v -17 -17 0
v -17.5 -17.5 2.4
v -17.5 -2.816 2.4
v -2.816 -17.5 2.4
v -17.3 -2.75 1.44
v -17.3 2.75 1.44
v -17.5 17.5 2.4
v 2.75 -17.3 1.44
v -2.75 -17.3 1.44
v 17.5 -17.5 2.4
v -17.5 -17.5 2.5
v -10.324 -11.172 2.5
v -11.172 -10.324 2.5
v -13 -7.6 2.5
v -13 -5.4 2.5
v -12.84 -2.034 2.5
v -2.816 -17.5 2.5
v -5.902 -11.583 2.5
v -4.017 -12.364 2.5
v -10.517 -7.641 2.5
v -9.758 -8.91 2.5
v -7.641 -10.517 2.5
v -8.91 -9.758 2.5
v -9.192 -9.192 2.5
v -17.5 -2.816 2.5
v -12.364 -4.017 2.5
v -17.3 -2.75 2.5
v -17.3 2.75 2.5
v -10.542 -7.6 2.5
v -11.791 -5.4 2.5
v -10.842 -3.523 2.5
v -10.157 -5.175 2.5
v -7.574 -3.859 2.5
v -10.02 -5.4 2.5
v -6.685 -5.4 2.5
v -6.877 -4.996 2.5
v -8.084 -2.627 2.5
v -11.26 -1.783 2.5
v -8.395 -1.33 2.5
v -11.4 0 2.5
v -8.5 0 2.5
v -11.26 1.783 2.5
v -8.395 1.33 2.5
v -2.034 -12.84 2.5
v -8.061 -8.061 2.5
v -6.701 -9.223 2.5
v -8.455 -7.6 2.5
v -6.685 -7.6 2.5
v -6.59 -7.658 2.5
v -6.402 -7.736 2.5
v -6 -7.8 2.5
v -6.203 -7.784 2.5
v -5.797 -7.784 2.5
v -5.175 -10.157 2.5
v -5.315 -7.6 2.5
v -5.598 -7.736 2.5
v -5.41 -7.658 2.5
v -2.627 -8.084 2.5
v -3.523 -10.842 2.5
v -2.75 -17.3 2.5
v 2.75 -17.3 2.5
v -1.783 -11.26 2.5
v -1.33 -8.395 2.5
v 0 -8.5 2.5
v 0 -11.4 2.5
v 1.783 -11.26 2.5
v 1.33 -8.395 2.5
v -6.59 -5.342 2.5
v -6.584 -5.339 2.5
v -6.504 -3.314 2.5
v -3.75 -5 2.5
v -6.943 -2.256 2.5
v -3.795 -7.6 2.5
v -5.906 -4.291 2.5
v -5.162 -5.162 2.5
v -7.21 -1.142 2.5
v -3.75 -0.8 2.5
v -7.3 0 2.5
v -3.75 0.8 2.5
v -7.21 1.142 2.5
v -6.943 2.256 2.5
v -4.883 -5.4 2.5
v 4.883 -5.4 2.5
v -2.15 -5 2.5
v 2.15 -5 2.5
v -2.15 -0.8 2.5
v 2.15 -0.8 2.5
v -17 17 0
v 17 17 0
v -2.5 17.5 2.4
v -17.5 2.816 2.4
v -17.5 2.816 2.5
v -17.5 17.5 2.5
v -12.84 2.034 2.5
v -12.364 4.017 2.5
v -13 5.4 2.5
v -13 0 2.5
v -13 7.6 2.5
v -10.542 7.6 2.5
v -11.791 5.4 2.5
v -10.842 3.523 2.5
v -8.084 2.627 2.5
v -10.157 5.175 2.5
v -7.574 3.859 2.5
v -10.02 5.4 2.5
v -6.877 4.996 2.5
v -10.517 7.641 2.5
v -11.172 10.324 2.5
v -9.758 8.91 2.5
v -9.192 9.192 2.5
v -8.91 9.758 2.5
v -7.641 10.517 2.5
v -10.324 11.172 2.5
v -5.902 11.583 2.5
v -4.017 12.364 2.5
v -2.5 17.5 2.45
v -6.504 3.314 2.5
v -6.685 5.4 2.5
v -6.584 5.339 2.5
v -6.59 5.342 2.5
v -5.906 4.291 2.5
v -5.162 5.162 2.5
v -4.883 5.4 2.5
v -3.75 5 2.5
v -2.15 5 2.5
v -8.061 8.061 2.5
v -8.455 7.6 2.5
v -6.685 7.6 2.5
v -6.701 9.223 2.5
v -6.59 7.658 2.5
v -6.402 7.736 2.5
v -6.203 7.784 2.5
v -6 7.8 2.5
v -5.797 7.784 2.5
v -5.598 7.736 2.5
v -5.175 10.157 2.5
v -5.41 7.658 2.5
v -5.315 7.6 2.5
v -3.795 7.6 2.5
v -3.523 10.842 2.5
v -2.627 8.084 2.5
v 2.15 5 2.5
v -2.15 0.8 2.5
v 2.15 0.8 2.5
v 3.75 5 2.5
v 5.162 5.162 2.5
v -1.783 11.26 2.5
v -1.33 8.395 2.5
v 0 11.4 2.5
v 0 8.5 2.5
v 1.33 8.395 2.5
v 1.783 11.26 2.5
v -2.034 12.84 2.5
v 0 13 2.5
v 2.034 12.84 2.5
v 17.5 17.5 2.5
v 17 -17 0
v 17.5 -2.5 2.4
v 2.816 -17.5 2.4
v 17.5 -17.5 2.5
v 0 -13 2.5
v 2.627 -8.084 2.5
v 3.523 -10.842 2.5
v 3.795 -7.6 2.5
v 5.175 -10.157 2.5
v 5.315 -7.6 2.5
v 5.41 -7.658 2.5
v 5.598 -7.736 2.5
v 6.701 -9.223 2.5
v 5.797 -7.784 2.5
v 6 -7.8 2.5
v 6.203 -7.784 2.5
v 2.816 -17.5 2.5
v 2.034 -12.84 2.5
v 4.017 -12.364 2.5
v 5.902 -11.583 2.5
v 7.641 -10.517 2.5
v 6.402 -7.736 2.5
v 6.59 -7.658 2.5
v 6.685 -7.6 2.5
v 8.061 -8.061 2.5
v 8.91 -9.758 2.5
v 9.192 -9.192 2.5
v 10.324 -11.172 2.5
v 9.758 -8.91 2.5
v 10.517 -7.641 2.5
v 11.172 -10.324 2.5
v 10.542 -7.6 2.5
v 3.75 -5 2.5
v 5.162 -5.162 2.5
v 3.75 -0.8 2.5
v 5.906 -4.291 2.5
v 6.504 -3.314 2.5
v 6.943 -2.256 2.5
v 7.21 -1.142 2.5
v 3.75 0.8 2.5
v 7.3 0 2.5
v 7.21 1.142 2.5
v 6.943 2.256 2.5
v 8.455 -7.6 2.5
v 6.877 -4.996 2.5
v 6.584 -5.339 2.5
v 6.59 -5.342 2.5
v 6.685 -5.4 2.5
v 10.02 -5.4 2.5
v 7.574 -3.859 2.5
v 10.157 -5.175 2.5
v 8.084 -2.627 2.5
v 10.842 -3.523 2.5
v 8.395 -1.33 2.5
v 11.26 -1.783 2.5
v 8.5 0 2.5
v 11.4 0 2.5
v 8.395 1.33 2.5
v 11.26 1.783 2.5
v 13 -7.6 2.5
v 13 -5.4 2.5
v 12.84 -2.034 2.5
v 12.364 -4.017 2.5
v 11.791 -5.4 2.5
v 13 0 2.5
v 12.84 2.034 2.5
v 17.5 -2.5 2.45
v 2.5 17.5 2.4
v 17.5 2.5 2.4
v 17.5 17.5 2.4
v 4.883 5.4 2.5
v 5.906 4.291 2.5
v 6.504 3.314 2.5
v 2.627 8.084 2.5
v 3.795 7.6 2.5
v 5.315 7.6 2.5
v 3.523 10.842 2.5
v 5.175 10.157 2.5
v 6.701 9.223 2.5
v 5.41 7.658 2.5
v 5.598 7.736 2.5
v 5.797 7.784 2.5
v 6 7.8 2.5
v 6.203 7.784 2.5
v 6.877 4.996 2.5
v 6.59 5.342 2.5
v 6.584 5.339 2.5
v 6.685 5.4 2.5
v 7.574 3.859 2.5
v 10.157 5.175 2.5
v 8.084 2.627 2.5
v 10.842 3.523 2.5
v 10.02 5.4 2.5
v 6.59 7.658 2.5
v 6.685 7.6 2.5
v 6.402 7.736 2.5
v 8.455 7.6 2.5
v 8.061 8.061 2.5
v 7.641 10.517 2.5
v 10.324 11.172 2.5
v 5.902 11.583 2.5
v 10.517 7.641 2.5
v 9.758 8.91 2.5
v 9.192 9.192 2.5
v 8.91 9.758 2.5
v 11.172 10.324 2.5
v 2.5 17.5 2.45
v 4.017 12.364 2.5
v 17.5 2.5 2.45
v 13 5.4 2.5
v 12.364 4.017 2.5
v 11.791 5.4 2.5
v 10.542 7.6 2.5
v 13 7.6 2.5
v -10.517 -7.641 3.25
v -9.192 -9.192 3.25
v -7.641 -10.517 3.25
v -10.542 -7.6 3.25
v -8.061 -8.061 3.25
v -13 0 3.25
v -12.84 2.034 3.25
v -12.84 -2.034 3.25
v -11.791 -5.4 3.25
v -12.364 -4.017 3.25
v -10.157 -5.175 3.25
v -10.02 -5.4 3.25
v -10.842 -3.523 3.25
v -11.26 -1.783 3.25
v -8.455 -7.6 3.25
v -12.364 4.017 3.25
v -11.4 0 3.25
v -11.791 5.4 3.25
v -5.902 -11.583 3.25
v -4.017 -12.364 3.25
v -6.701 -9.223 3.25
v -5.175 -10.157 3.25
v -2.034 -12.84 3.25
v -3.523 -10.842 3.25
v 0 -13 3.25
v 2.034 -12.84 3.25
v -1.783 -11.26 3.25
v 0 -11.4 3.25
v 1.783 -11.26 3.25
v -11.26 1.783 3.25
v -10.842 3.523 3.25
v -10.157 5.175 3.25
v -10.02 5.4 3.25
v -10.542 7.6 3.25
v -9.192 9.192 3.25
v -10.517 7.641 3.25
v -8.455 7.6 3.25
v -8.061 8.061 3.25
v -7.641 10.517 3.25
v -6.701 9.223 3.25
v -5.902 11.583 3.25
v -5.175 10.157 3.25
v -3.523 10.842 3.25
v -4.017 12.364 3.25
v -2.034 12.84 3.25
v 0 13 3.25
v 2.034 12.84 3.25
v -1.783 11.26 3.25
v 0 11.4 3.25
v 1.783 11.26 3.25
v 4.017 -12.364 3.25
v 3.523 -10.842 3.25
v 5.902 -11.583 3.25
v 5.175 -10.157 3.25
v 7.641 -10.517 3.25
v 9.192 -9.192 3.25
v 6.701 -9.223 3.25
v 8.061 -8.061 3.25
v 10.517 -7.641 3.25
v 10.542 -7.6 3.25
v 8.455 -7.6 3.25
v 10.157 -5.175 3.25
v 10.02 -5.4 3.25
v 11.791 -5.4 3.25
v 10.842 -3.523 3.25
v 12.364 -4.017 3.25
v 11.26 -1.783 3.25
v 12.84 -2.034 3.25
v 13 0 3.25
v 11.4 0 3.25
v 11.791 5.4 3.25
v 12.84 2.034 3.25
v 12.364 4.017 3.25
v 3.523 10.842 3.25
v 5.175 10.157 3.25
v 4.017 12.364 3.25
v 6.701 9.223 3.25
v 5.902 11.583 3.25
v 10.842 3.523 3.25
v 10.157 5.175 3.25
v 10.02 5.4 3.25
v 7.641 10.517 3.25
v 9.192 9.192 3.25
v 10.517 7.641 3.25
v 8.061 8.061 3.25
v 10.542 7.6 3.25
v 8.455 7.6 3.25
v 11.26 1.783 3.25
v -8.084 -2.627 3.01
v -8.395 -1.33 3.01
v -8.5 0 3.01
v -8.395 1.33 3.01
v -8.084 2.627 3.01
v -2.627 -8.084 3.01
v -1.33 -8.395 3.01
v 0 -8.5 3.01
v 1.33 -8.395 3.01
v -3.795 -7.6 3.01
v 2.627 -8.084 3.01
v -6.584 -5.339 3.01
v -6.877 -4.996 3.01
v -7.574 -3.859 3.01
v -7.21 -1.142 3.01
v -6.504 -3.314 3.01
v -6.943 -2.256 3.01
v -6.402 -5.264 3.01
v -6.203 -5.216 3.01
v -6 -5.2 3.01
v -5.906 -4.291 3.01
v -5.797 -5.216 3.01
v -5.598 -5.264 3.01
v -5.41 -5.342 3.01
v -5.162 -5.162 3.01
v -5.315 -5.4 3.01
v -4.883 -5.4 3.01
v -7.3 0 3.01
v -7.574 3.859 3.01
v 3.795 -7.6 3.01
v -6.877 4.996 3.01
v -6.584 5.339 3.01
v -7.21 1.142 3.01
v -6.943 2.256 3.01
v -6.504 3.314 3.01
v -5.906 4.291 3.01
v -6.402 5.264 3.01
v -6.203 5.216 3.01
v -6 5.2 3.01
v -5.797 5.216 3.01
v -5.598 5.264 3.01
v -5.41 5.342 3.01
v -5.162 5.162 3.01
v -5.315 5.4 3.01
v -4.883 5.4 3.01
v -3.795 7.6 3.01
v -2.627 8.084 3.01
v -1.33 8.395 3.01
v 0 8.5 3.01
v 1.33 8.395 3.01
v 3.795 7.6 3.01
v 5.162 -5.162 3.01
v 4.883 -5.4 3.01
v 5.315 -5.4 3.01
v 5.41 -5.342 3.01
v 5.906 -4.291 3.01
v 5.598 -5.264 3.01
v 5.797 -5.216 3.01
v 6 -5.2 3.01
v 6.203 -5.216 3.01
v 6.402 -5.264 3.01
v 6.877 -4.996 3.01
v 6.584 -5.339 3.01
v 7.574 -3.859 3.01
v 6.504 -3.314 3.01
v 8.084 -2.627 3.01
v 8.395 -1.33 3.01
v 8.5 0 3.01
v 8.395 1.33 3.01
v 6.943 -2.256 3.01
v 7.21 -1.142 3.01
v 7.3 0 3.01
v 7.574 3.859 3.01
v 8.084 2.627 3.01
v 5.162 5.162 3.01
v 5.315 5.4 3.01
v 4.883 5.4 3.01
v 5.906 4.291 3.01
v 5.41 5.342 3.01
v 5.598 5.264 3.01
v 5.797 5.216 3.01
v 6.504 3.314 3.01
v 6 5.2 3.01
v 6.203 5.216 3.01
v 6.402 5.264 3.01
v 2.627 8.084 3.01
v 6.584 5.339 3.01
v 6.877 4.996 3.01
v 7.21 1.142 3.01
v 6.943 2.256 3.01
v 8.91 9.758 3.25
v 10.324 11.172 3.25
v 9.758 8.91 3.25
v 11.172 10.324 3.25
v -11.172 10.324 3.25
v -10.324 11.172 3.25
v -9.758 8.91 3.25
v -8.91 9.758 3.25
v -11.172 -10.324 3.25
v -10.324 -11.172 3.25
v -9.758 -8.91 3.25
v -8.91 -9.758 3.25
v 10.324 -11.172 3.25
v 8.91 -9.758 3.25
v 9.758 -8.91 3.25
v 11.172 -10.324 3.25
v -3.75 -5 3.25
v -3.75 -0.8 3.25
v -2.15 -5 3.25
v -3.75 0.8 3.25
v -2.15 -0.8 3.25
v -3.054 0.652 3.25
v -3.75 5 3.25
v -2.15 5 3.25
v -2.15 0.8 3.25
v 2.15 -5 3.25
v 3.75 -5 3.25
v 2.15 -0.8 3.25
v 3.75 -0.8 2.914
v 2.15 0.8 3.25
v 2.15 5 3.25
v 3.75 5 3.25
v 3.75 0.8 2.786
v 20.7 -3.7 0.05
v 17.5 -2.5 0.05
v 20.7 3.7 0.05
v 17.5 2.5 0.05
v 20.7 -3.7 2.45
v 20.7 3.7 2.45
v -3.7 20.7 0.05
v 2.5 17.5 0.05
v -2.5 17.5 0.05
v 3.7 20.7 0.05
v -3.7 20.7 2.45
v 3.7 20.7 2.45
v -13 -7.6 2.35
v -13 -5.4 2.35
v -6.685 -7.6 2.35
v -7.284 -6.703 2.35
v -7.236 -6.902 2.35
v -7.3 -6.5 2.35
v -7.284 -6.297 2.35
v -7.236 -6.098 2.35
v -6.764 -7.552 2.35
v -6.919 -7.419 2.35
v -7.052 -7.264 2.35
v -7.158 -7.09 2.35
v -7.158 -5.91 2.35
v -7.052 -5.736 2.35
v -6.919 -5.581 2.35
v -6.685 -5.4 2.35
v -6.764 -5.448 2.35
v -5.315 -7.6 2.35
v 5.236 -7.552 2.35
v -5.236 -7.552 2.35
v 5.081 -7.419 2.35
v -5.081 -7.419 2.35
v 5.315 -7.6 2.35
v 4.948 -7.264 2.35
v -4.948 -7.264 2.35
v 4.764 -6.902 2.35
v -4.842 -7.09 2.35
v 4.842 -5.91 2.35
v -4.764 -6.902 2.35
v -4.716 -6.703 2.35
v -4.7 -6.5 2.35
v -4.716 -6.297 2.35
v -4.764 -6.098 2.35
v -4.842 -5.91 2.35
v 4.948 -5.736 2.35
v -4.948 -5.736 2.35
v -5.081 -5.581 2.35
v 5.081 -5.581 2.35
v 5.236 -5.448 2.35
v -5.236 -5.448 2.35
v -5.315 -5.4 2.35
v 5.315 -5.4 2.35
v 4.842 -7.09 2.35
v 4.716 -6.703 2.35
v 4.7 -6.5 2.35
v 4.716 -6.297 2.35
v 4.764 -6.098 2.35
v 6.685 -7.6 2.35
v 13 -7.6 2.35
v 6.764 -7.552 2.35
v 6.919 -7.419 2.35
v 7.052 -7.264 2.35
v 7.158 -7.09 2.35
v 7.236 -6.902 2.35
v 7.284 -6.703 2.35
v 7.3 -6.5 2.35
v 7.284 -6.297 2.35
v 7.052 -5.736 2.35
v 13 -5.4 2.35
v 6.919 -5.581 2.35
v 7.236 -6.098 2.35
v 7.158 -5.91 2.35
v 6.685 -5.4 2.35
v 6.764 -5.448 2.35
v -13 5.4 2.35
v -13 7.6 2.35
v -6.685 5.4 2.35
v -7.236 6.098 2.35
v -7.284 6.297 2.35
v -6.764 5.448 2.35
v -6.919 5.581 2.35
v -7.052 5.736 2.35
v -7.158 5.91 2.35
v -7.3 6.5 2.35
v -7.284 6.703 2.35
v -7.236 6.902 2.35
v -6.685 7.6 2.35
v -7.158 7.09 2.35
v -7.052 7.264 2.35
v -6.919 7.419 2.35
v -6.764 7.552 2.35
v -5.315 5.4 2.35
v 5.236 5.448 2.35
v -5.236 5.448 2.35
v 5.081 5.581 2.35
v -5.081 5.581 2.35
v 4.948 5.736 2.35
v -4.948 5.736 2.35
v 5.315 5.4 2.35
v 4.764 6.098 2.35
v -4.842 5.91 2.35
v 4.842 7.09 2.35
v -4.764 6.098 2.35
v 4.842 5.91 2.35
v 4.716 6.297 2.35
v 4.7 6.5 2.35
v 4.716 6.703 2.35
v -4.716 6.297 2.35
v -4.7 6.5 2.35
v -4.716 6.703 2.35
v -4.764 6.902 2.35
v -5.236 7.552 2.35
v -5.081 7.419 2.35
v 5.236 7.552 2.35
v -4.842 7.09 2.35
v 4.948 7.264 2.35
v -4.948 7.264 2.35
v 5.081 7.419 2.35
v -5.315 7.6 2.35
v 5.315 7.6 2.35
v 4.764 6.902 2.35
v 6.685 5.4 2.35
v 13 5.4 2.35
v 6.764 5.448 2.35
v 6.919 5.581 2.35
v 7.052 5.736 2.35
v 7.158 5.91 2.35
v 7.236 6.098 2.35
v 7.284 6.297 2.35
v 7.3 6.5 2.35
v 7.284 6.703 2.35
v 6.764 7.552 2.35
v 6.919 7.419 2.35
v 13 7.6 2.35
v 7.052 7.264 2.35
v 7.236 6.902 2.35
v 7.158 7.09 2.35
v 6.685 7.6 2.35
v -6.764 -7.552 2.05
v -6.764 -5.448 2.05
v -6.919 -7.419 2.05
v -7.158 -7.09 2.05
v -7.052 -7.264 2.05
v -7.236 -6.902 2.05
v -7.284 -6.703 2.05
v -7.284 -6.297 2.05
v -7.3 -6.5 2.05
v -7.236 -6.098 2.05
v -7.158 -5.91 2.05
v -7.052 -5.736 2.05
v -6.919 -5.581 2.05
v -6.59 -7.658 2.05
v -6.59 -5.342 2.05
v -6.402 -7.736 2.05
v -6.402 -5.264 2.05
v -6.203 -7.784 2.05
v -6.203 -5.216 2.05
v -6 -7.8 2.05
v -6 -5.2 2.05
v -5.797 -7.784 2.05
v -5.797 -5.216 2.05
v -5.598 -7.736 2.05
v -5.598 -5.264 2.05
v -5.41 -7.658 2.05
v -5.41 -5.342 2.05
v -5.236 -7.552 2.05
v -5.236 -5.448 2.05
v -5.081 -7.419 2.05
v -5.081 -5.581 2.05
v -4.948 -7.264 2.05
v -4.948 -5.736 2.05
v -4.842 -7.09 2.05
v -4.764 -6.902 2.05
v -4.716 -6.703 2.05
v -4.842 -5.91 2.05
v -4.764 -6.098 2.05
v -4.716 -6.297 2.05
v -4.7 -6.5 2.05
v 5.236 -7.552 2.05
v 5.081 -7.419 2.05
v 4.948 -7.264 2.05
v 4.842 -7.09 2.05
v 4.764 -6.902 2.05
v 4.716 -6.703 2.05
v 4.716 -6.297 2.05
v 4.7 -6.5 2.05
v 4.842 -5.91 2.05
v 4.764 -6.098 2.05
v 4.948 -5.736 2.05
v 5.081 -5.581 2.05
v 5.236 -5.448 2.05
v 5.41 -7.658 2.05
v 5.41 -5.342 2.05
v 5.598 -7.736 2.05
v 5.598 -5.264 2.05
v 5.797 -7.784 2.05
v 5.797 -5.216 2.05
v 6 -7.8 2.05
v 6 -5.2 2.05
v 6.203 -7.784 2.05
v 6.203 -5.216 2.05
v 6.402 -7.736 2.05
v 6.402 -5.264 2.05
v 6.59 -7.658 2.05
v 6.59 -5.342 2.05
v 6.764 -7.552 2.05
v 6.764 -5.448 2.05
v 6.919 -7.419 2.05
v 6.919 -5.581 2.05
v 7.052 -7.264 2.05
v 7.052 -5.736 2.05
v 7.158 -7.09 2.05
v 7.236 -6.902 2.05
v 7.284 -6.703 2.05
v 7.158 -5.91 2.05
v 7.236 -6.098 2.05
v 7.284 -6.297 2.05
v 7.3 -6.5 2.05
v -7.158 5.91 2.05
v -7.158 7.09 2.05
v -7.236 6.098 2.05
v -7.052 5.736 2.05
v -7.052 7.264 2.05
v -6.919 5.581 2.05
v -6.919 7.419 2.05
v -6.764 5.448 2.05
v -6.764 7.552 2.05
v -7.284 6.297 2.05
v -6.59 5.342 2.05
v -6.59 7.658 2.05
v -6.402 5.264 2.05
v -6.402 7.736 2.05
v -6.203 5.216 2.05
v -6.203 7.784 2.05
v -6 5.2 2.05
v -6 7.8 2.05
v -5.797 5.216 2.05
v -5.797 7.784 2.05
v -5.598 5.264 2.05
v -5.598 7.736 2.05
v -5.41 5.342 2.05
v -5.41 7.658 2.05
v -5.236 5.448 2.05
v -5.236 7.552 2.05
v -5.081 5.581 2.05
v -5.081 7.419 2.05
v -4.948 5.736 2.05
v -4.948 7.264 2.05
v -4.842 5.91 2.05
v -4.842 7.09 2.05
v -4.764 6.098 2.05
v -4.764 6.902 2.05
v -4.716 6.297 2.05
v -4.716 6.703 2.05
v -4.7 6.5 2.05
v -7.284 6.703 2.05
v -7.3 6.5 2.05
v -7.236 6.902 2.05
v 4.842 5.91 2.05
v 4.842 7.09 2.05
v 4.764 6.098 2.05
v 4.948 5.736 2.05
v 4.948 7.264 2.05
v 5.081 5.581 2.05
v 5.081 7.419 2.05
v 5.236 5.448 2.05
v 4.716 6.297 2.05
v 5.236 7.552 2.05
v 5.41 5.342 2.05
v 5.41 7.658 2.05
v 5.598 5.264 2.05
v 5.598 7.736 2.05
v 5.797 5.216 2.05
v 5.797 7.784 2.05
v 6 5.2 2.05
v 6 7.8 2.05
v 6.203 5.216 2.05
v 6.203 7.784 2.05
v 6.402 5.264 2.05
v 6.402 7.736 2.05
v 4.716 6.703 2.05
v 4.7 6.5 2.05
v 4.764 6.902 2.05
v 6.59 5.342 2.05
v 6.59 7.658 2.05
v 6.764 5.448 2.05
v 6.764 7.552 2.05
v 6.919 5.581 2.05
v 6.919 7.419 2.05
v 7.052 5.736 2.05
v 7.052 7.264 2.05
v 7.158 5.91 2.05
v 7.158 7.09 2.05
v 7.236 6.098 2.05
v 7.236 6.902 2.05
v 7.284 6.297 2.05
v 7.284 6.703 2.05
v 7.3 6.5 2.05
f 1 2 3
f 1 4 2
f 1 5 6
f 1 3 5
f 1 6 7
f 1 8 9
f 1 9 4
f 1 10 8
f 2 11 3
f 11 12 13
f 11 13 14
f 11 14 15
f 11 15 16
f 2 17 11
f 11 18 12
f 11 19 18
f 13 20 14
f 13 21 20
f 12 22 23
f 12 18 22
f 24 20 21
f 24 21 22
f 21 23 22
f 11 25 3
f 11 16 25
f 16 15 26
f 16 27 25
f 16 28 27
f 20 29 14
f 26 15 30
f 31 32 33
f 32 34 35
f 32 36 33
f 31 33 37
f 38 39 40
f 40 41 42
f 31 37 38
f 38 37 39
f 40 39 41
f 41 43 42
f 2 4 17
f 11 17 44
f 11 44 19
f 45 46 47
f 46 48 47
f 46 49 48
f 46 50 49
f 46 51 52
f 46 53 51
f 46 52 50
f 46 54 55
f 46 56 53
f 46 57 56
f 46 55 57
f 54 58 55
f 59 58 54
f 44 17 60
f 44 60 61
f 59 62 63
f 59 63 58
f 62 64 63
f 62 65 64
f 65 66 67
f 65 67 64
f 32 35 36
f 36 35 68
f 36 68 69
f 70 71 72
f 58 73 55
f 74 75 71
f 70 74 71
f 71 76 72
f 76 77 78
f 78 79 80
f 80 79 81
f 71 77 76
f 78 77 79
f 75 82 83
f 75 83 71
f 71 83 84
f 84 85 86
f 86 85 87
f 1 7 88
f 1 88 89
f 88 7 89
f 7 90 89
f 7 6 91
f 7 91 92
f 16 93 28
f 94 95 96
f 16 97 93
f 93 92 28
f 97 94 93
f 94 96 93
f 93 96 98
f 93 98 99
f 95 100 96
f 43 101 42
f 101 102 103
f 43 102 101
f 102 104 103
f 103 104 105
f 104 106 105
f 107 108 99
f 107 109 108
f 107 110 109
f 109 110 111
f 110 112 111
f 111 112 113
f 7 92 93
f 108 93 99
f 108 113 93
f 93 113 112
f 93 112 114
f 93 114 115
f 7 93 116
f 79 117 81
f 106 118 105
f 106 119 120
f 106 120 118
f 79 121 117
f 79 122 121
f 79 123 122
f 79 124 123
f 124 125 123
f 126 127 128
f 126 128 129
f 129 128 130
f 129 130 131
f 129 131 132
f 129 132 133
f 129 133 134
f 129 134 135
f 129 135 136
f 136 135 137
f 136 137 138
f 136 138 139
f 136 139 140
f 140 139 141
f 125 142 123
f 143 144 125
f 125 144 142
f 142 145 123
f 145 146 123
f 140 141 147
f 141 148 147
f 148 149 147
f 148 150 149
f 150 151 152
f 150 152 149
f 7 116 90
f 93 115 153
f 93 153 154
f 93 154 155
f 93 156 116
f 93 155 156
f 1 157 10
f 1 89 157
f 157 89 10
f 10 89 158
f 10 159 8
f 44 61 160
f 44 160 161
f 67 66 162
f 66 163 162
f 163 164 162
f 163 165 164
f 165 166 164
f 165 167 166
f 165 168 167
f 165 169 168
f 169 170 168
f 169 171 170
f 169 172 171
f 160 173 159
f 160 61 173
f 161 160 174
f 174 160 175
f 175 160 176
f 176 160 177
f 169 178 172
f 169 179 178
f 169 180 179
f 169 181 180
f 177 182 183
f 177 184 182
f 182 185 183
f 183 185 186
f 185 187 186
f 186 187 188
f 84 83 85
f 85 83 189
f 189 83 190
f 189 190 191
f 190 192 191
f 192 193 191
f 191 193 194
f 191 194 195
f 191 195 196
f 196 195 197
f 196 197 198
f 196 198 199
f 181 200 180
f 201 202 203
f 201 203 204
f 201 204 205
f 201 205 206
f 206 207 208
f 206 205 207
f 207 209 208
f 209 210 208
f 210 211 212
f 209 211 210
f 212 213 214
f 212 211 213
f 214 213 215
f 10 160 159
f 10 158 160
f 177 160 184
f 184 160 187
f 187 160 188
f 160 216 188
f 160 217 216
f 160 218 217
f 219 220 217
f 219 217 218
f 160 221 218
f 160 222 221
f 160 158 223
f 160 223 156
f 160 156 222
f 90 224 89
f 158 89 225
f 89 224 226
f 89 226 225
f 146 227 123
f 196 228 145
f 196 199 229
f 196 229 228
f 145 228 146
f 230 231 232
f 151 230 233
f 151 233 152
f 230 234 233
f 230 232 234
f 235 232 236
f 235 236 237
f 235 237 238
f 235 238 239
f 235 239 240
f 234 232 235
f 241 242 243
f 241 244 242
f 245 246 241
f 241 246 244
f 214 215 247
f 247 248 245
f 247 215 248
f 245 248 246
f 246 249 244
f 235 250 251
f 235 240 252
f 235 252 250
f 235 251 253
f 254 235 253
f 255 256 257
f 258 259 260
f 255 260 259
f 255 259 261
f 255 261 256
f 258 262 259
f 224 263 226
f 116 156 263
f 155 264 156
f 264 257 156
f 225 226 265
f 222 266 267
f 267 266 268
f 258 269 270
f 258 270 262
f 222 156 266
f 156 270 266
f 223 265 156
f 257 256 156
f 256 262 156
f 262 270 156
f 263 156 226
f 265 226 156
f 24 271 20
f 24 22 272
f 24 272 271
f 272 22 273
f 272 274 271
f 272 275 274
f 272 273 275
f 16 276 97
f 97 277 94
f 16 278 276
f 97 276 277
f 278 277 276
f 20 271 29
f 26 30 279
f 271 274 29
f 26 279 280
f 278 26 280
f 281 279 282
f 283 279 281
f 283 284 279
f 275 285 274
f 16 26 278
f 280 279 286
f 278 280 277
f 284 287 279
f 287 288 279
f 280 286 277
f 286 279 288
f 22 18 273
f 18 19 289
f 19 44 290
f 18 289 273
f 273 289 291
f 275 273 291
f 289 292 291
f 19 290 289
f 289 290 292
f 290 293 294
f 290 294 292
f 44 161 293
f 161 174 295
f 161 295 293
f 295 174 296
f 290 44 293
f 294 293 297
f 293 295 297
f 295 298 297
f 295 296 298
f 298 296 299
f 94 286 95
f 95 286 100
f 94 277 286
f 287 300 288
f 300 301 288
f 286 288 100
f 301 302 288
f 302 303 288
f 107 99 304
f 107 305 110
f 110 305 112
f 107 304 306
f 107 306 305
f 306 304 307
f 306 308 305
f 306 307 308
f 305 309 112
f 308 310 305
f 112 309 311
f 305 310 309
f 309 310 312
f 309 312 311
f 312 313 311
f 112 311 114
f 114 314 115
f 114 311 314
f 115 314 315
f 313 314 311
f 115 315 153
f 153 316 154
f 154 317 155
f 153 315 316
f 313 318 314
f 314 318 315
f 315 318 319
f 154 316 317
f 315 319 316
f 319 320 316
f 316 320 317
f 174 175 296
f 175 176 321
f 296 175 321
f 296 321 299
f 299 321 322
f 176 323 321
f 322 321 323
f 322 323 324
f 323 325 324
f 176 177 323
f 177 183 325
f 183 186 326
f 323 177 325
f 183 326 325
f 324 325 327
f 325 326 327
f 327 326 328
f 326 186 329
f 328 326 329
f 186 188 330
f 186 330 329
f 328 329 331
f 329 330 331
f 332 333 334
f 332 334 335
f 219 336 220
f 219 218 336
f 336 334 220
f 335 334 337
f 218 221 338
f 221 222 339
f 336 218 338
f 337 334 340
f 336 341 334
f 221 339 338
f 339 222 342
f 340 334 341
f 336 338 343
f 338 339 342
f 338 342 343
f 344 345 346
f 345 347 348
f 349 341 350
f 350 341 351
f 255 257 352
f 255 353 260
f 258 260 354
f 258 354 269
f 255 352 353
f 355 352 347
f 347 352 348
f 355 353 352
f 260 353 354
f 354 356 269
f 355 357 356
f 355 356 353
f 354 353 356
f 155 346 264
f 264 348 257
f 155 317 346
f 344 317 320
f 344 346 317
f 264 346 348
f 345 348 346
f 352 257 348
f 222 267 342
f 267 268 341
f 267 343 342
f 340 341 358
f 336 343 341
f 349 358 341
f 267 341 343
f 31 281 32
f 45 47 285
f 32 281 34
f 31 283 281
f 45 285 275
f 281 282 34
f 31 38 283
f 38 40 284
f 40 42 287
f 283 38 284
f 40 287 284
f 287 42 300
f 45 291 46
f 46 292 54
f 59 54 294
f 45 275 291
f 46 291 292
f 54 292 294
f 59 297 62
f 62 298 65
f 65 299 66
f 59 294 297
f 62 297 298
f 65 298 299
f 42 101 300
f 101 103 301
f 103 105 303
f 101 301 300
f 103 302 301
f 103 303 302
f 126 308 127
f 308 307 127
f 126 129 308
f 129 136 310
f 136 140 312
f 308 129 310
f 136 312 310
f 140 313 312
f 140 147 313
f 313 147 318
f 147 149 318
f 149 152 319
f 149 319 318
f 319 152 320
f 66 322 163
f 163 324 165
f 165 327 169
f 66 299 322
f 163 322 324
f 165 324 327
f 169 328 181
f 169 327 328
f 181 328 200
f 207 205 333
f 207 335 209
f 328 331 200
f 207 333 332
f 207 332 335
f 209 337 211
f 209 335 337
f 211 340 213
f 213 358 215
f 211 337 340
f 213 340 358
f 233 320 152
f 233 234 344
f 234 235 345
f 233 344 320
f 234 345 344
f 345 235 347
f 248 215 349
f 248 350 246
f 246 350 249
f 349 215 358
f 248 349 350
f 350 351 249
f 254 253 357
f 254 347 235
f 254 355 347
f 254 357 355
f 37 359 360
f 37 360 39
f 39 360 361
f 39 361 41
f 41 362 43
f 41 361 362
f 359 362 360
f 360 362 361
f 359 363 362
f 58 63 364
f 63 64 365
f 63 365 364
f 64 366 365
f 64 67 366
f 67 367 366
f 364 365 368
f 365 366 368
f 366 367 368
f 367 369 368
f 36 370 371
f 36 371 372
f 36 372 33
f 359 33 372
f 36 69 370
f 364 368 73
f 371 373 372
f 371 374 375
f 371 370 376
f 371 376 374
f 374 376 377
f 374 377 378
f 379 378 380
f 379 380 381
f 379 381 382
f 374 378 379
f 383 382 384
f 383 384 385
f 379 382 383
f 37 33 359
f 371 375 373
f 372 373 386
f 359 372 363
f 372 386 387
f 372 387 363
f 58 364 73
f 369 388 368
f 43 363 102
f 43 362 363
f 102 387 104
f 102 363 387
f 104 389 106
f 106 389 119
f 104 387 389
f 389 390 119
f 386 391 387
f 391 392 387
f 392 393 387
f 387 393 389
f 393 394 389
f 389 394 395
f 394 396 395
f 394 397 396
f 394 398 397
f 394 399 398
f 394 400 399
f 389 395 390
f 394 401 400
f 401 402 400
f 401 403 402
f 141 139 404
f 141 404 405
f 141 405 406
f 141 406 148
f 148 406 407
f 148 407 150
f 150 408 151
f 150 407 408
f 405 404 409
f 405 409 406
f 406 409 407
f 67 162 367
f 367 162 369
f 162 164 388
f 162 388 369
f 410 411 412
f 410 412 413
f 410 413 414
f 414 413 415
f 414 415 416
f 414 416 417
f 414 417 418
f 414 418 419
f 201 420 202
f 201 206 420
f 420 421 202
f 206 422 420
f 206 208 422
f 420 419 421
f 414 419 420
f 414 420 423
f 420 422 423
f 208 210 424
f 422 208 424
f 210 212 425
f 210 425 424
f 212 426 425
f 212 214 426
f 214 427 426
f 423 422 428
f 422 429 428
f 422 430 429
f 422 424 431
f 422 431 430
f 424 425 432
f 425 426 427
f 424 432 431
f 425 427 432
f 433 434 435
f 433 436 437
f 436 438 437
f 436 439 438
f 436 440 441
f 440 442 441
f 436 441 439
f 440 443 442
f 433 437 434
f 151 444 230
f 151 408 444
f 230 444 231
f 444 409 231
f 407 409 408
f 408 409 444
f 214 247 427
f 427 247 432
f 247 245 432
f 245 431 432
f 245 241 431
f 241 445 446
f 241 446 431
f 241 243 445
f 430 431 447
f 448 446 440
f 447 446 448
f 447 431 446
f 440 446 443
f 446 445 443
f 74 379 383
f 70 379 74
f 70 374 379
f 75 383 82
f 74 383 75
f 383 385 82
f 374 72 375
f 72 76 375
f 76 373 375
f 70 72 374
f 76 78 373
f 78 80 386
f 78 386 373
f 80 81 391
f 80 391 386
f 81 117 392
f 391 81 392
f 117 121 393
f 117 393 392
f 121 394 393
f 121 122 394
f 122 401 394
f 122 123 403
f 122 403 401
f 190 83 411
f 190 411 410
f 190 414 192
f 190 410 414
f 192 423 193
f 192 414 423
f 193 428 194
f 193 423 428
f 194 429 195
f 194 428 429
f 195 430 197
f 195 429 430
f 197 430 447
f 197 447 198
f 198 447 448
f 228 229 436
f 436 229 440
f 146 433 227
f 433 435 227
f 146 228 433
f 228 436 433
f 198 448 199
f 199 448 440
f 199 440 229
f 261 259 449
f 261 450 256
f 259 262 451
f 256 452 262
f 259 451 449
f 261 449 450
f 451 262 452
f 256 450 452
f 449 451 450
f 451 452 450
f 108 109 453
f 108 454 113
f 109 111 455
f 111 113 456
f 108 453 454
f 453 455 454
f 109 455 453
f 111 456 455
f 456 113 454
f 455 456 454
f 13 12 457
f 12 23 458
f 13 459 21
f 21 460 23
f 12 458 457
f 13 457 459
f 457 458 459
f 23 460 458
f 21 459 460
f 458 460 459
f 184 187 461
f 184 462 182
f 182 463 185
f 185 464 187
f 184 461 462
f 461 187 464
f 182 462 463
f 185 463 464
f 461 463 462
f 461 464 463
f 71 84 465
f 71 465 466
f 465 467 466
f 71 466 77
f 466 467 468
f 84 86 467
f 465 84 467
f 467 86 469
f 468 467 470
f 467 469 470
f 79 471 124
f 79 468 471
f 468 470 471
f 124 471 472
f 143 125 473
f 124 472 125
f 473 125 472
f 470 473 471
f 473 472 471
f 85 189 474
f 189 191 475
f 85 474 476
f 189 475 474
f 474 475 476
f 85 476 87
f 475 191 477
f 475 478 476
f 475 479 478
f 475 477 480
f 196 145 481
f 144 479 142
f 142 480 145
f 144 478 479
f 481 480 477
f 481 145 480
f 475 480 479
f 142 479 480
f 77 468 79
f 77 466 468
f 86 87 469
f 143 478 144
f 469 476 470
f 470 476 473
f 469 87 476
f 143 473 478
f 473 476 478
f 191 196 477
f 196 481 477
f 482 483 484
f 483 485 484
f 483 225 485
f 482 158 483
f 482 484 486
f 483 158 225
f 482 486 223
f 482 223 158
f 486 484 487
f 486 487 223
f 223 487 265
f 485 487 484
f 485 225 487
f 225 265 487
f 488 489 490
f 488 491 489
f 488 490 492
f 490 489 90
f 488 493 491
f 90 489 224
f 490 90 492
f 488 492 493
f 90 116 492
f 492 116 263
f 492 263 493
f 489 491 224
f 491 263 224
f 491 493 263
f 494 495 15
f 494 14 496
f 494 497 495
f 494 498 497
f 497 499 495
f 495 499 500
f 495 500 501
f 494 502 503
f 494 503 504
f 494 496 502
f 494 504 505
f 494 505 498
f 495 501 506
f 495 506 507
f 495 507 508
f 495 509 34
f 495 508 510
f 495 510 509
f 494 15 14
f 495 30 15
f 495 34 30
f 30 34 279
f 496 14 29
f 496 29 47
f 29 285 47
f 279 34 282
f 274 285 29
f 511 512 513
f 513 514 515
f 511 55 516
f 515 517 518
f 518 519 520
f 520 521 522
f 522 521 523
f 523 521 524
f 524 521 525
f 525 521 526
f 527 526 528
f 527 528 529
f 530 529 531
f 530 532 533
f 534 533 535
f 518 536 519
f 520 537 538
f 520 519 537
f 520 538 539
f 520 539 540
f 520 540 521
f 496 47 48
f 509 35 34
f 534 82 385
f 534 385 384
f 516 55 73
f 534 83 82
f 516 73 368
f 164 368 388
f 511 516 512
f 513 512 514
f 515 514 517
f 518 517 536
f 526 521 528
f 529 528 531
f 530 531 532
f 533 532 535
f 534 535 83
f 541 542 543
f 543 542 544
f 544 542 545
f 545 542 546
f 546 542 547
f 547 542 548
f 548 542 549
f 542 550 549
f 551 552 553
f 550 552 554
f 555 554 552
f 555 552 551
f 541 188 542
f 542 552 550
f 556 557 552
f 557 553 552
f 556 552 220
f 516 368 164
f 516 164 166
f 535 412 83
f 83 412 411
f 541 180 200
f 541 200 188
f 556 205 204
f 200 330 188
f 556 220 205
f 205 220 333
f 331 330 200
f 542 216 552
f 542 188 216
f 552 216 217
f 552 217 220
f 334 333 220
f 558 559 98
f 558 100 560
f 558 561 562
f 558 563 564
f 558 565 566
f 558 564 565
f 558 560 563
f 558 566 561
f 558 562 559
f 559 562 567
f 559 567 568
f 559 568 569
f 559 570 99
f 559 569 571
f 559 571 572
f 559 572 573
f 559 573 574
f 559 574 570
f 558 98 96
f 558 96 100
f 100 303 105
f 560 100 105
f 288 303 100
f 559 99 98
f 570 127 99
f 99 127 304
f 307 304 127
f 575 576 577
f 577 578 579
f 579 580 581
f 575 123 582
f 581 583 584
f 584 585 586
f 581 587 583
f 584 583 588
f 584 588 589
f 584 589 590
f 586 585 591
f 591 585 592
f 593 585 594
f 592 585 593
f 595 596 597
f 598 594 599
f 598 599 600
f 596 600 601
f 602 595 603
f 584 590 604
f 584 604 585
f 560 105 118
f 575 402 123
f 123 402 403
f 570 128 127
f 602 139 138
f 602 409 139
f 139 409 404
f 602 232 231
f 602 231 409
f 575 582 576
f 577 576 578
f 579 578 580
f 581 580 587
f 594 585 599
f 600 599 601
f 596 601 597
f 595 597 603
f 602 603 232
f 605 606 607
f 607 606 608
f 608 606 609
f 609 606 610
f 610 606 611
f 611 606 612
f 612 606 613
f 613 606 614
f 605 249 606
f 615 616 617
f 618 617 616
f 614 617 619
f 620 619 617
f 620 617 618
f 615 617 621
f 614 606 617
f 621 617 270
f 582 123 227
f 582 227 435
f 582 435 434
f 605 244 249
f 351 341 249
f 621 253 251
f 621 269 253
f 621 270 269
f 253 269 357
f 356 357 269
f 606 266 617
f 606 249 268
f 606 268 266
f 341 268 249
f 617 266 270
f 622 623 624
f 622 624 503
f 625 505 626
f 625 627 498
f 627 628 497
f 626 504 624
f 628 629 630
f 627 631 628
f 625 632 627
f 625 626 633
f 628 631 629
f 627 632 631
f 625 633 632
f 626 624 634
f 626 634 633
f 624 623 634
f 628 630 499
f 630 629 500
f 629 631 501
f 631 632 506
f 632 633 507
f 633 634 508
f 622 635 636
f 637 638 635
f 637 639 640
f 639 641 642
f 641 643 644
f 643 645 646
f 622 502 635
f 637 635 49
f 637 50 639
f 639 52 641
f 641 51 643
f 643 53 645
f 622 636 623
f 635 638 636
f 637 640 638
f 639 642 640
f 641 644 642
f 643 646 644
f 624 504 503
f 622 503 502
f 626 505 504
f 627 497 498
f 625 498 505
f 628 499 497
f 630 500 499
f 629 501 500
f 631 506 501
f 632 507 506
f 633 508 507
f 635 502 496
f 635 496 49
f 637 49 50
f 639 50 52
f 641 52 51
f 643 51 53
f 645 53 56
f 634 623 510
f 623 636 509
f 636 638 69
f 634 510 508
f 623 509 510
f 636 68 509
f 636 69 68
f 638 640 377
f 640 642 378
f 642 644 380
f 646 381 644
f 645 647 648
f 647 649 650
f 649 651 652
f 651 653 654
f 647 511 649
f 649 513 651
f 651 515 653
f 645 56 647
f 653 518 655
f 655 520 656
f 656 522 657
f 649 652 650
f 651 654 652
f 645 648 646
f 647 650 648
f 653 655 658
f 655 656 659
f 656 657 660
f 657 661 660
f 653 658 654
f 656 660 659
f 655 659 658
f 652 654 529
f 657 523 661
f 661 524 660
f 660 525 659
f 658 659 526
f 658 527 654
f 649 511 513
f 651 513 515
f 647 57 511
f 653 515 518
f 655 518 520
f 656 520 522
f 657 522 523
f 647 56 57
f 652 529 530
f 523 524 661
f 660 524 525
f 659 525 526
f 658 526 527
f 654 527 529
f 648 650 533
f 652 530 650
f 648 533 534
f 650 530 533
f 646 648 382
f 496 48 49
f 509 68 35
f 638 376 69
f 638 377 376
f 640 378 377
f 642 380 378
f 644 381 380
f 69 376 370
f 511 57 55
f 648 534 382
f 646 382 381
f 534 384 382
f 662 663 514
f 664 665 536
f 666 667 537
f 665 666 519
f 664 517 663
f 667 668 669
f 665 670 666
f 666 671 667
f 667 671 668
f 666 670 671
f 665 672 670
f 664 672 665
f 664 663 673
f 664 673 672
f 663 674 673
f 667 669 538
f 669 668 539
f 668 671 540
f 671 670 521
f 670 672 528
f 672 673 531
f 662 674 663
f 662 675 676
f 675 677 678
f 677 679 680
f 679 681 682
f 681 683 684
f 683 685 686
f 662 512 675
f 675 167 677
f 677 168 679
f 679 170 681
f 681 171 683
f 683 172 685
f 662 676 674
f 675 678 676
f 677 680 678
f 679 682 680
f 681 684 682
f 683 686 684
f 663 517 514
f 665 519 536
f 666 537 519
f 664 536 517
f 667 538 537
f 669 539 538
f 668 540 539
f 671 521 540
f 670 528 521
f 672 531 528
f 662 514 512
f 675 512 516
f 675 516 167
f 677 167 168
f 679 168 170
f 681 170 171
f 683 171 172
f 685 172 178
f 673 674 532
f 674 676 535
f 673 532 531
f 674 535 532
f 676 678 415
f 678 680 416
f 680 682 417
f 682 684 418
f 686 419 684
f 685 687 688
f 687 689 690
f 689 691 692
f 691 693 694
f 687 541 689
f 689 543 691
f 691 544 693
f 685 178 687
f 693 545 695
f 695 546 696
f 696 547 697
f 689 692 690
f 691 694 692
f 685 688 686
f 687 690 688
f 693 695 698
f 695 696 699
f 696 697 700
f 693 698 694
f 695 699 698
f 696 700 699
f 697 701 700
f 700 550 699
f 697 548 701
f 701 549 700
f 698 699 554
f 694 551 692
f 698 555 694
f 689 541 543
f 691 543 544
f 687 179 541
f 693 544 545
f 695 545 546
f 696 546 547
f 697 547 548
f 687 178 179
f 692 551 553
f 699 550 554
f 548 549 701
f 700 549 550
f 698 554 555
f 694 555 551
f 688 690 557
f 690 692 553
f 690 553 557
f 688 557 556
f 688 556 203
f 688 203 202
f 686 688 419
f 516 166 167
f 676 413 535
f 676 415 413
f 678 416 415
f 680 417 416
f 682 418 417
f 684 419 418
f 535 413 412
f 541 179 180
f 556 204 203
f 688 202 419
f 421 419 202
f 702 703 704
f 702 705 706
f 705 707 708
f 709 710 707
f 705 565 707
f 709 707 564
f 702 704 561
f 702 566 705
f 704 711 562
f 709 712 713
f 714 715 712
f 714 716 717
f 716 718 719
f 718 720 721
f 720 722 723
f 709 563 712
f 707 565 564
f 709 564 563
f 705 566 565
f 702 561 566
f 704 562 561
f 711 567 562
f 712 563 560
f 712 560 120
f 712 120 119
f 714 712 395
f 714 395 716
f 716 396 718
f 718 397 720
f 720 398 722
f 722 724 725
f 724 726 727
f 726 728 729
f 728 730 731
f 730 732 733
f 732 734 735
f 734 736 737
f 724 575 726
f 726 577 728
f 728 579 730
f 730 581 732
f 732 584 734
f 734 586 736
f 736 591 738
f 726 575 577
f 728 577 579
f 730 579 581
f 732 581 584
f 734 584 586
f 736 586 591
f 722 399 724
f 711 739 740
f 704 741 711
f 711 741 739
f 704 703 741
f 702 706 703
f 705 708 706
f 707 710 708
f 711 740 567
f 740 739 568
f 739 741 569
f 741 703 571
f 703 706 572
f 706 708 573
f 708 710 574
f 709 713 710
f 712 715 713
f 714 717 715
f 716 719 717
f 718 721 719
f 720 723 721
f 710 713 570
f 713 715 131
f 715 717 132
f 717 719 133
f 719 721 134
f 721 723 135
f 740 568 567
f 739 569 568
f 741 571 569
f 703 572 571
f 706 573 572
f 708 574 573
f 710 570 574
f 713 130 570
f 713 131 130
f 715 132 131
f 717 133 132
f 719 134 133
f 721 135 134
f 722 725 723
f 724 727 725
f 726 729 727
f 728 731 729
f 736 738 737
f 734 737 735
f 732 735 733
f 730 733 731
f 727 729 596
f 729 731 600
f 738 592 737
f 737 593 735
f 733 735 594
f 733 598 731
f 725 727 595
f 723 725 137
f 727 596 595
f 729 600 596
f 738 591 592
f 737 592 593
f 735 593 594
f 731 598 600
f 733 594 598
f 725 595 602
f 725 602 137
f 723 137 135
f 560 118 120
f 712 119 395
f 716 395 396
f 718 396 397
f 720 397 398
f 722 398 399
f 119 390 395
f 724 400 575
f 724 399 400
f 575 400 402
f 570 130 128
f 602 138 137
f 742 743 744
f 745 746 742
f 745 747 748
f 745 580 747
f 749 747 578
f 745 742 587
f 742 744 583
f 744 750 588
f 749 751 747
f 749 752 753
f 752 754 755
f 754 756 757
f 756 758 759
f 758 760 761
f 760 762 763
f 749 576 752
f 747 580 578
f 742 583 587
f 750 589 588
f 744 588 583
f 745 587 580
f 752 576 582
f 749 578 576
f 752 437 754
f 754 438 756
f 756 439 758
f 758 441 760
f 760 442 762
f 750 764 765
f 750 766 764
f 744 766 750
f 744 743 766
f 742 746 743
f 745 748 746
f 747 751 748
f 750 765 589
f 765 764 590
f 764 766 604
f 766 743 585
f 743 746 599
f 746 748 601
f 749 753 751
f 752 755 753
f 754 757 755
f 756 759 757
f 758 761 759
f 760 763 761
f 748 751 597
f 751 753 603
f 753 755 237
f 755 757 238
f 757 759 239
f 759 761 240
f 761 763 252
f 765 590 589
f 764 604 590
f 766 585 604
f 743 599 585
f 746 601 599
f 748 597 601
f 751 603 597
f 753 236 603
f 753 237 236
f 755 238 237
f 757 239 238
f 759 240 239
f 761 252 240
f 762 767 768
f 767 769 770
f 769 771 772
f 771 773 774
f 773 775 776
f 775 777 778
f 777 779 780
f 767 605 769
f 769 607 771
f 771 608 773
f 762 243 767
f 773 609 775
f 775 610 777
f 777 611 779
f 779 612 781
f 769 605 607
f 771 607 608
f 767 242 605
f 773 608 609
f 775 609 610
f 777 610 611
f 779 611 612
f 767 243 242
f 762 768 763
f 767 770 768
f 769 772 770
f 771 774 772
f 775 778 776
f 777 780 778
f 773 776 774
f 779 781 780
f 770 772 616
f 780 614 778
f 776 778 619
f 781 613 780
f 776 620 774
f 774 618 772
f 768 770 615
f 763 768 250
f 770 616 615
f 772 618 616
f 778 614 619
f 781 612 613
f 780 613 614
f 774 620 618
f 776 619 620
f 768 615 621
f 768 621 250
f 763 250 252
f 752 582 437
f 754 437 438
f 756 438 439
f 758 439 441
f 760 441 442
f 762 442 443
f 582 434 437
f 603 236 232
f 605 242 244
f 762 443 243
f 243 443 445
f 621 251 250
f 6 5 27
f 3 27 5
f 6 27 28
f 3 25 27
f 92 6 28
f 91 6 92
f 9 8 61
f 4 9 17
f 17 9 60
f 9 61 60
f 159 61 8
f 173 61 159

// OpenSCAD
// ====================================================================
// Modular 35mm Chopper Base - 3.5 cm Square Interlocking Helipad Tile
// Dimensions: 35.0 mm x 35.0 mm x 3.2 mm
// Features:
// - Standard 35mm modular grid footprint
// - Male / Female dovetail connectors on orthogonal sides (0.25mm clearance)
// - Precision skid landing alignment slots (13.0mm track)
// - Helipad 'H' and concentric marking rings
// - 45-degree chamfered perimeter to prevent corner warping
// ====================================================================

$fn = 40;

tile_size = 35.0;
base_h    = 2.4;
relief_h  = 0.8;
total_h   = base_h + relief_h;
skid_span = 13.0; // Distance between skid centers

// Dovetail parameters
dt_w_base = 5.0;
dt_w_tip  = 7.4;
dt_depth  = 3.2;
dt_tol    = 0.25; // Radial tolerance for snap fit

module dovetail_male() {
    linear_extrude(height = base_h)
        polygon([
            [-dt_w_base/2, 0],
            [ dt_w_base/2, 0],
            [ dt_w_tip/2,  dt_depth],
            [-dt_w_tip/2,  dt_depth]
        ]);
}

module dovetail_female() {
    w_b = dt_w_base/2 + dt_tol;
    w_t = dt_w_tip/2 + dt_tol;
    d   = dt_depth + dt_tol;
    translate([0, 0, -0.1])
        linear_extrude(height = base_h + 0.2)
            polygon([
                [-w_b, -0.2],
                [ w_b, -0.2],
                [ w_t,  d],
                [-w_t,  d]
            ]);
}

module helipad_markings() {
    // Concentric outer ring
    difference() {
        cylinder(r = 13.0, h = relief_h, center = false);
        translate([0, 0, -0.1])
            cylinder(r = 11.4, h = relief_h + 0.2, center = false);
    }

    // Inner dashed accent ring
    difference() {
        cylinder(r = 8.5, h = relief_h * 0.7, center = false);
        translate([0, 0, -0.1])
            cylinder(r = 7.3, h = relief_h + 0.2, center = false);
    }

    // Classic Helipad 'H' symbol
    h_h = 10.0;
    h_w = 7.5;
    h_t = 1.6;
    // Left vertical bar
    translate([-h_w/2 + h_t/2, 0, relief_h/2])
        cube([h_t, h_h, relief_h], center = true);
    // Right vertical bar
    translate([h_w/2 - h_t/2, 0, relief_h/2])
        cube([h_t, h_h, relief_h], center = true);
    // Center horizontal crossbar
    translate([0, 0, relief_h/2])
        cube([h_w, h_t, relief_h], center = true);

    // Corner alignment chevrons
    for (a = [45, 135, 225, 315]) {
        rotate([0, 0, a]) translate([14.2, 0, relief_h/2])
            cube([2.0, 1.2, relief_h], center = true);
    }
}

module helipad_tile() {
    difference() {
        union() {
            // Main chamfered tile body
            hull() {
                // Flat bottom contact at Z = 0 (33mm x 33mm with 1mm corner chamfers)
                translate([0, 0, 0])
                    cube([tile_size - 1.0, tile_size - 1.0, 0.1], center = true);
                // Beveled top deck at Z = base_h (35mm x 35mm)
                translate([0, 0, base_h])
                    cube([tile_size, tile_size, 0.1], center = true);
            }

            // Male dovetails (+X and +Y)
            translate([tile_size/2, 0, 0])
                rotate([0, 0, -90]) dovetail_male();
            translate([0, tile_size/2, 0])
                dovetail_male();

            // Raised markings
            translate([0, 0, base_h])
                helipad_markings();
        }

        // Female dovetails (-X and -Y)
        translate([-tile_size/2, 0, 0])
            rotate([0, 0, 90]) dovetail_female();
        translate([0, -tile_size/2, 0])
            rotate([0, 0, 180]) dovetail_female();

        // Skid landing guide grooves (aligned along X axis, spaced at skid_span)
        for (sy = [-1, 1]) {
            translate([0, sy * skid_span/2, base_h + relief_h - 0.4])
                cube([26.0, 2.2, 1.0], center = true);
        }

        // Skid center detent dimples
        for (sy = [-1, 1], sx = [-6.0, 6.0]) {
            translate([sx, sy * skid_span/2, base_h + relief_h - 0.7])
                cylinder(r = 1.3, h = 1.0, center = true);
        }
    }
}

// Standalone render grounded at Z = 0
translate([0, 0, 0.05])
    helipad_tile();
